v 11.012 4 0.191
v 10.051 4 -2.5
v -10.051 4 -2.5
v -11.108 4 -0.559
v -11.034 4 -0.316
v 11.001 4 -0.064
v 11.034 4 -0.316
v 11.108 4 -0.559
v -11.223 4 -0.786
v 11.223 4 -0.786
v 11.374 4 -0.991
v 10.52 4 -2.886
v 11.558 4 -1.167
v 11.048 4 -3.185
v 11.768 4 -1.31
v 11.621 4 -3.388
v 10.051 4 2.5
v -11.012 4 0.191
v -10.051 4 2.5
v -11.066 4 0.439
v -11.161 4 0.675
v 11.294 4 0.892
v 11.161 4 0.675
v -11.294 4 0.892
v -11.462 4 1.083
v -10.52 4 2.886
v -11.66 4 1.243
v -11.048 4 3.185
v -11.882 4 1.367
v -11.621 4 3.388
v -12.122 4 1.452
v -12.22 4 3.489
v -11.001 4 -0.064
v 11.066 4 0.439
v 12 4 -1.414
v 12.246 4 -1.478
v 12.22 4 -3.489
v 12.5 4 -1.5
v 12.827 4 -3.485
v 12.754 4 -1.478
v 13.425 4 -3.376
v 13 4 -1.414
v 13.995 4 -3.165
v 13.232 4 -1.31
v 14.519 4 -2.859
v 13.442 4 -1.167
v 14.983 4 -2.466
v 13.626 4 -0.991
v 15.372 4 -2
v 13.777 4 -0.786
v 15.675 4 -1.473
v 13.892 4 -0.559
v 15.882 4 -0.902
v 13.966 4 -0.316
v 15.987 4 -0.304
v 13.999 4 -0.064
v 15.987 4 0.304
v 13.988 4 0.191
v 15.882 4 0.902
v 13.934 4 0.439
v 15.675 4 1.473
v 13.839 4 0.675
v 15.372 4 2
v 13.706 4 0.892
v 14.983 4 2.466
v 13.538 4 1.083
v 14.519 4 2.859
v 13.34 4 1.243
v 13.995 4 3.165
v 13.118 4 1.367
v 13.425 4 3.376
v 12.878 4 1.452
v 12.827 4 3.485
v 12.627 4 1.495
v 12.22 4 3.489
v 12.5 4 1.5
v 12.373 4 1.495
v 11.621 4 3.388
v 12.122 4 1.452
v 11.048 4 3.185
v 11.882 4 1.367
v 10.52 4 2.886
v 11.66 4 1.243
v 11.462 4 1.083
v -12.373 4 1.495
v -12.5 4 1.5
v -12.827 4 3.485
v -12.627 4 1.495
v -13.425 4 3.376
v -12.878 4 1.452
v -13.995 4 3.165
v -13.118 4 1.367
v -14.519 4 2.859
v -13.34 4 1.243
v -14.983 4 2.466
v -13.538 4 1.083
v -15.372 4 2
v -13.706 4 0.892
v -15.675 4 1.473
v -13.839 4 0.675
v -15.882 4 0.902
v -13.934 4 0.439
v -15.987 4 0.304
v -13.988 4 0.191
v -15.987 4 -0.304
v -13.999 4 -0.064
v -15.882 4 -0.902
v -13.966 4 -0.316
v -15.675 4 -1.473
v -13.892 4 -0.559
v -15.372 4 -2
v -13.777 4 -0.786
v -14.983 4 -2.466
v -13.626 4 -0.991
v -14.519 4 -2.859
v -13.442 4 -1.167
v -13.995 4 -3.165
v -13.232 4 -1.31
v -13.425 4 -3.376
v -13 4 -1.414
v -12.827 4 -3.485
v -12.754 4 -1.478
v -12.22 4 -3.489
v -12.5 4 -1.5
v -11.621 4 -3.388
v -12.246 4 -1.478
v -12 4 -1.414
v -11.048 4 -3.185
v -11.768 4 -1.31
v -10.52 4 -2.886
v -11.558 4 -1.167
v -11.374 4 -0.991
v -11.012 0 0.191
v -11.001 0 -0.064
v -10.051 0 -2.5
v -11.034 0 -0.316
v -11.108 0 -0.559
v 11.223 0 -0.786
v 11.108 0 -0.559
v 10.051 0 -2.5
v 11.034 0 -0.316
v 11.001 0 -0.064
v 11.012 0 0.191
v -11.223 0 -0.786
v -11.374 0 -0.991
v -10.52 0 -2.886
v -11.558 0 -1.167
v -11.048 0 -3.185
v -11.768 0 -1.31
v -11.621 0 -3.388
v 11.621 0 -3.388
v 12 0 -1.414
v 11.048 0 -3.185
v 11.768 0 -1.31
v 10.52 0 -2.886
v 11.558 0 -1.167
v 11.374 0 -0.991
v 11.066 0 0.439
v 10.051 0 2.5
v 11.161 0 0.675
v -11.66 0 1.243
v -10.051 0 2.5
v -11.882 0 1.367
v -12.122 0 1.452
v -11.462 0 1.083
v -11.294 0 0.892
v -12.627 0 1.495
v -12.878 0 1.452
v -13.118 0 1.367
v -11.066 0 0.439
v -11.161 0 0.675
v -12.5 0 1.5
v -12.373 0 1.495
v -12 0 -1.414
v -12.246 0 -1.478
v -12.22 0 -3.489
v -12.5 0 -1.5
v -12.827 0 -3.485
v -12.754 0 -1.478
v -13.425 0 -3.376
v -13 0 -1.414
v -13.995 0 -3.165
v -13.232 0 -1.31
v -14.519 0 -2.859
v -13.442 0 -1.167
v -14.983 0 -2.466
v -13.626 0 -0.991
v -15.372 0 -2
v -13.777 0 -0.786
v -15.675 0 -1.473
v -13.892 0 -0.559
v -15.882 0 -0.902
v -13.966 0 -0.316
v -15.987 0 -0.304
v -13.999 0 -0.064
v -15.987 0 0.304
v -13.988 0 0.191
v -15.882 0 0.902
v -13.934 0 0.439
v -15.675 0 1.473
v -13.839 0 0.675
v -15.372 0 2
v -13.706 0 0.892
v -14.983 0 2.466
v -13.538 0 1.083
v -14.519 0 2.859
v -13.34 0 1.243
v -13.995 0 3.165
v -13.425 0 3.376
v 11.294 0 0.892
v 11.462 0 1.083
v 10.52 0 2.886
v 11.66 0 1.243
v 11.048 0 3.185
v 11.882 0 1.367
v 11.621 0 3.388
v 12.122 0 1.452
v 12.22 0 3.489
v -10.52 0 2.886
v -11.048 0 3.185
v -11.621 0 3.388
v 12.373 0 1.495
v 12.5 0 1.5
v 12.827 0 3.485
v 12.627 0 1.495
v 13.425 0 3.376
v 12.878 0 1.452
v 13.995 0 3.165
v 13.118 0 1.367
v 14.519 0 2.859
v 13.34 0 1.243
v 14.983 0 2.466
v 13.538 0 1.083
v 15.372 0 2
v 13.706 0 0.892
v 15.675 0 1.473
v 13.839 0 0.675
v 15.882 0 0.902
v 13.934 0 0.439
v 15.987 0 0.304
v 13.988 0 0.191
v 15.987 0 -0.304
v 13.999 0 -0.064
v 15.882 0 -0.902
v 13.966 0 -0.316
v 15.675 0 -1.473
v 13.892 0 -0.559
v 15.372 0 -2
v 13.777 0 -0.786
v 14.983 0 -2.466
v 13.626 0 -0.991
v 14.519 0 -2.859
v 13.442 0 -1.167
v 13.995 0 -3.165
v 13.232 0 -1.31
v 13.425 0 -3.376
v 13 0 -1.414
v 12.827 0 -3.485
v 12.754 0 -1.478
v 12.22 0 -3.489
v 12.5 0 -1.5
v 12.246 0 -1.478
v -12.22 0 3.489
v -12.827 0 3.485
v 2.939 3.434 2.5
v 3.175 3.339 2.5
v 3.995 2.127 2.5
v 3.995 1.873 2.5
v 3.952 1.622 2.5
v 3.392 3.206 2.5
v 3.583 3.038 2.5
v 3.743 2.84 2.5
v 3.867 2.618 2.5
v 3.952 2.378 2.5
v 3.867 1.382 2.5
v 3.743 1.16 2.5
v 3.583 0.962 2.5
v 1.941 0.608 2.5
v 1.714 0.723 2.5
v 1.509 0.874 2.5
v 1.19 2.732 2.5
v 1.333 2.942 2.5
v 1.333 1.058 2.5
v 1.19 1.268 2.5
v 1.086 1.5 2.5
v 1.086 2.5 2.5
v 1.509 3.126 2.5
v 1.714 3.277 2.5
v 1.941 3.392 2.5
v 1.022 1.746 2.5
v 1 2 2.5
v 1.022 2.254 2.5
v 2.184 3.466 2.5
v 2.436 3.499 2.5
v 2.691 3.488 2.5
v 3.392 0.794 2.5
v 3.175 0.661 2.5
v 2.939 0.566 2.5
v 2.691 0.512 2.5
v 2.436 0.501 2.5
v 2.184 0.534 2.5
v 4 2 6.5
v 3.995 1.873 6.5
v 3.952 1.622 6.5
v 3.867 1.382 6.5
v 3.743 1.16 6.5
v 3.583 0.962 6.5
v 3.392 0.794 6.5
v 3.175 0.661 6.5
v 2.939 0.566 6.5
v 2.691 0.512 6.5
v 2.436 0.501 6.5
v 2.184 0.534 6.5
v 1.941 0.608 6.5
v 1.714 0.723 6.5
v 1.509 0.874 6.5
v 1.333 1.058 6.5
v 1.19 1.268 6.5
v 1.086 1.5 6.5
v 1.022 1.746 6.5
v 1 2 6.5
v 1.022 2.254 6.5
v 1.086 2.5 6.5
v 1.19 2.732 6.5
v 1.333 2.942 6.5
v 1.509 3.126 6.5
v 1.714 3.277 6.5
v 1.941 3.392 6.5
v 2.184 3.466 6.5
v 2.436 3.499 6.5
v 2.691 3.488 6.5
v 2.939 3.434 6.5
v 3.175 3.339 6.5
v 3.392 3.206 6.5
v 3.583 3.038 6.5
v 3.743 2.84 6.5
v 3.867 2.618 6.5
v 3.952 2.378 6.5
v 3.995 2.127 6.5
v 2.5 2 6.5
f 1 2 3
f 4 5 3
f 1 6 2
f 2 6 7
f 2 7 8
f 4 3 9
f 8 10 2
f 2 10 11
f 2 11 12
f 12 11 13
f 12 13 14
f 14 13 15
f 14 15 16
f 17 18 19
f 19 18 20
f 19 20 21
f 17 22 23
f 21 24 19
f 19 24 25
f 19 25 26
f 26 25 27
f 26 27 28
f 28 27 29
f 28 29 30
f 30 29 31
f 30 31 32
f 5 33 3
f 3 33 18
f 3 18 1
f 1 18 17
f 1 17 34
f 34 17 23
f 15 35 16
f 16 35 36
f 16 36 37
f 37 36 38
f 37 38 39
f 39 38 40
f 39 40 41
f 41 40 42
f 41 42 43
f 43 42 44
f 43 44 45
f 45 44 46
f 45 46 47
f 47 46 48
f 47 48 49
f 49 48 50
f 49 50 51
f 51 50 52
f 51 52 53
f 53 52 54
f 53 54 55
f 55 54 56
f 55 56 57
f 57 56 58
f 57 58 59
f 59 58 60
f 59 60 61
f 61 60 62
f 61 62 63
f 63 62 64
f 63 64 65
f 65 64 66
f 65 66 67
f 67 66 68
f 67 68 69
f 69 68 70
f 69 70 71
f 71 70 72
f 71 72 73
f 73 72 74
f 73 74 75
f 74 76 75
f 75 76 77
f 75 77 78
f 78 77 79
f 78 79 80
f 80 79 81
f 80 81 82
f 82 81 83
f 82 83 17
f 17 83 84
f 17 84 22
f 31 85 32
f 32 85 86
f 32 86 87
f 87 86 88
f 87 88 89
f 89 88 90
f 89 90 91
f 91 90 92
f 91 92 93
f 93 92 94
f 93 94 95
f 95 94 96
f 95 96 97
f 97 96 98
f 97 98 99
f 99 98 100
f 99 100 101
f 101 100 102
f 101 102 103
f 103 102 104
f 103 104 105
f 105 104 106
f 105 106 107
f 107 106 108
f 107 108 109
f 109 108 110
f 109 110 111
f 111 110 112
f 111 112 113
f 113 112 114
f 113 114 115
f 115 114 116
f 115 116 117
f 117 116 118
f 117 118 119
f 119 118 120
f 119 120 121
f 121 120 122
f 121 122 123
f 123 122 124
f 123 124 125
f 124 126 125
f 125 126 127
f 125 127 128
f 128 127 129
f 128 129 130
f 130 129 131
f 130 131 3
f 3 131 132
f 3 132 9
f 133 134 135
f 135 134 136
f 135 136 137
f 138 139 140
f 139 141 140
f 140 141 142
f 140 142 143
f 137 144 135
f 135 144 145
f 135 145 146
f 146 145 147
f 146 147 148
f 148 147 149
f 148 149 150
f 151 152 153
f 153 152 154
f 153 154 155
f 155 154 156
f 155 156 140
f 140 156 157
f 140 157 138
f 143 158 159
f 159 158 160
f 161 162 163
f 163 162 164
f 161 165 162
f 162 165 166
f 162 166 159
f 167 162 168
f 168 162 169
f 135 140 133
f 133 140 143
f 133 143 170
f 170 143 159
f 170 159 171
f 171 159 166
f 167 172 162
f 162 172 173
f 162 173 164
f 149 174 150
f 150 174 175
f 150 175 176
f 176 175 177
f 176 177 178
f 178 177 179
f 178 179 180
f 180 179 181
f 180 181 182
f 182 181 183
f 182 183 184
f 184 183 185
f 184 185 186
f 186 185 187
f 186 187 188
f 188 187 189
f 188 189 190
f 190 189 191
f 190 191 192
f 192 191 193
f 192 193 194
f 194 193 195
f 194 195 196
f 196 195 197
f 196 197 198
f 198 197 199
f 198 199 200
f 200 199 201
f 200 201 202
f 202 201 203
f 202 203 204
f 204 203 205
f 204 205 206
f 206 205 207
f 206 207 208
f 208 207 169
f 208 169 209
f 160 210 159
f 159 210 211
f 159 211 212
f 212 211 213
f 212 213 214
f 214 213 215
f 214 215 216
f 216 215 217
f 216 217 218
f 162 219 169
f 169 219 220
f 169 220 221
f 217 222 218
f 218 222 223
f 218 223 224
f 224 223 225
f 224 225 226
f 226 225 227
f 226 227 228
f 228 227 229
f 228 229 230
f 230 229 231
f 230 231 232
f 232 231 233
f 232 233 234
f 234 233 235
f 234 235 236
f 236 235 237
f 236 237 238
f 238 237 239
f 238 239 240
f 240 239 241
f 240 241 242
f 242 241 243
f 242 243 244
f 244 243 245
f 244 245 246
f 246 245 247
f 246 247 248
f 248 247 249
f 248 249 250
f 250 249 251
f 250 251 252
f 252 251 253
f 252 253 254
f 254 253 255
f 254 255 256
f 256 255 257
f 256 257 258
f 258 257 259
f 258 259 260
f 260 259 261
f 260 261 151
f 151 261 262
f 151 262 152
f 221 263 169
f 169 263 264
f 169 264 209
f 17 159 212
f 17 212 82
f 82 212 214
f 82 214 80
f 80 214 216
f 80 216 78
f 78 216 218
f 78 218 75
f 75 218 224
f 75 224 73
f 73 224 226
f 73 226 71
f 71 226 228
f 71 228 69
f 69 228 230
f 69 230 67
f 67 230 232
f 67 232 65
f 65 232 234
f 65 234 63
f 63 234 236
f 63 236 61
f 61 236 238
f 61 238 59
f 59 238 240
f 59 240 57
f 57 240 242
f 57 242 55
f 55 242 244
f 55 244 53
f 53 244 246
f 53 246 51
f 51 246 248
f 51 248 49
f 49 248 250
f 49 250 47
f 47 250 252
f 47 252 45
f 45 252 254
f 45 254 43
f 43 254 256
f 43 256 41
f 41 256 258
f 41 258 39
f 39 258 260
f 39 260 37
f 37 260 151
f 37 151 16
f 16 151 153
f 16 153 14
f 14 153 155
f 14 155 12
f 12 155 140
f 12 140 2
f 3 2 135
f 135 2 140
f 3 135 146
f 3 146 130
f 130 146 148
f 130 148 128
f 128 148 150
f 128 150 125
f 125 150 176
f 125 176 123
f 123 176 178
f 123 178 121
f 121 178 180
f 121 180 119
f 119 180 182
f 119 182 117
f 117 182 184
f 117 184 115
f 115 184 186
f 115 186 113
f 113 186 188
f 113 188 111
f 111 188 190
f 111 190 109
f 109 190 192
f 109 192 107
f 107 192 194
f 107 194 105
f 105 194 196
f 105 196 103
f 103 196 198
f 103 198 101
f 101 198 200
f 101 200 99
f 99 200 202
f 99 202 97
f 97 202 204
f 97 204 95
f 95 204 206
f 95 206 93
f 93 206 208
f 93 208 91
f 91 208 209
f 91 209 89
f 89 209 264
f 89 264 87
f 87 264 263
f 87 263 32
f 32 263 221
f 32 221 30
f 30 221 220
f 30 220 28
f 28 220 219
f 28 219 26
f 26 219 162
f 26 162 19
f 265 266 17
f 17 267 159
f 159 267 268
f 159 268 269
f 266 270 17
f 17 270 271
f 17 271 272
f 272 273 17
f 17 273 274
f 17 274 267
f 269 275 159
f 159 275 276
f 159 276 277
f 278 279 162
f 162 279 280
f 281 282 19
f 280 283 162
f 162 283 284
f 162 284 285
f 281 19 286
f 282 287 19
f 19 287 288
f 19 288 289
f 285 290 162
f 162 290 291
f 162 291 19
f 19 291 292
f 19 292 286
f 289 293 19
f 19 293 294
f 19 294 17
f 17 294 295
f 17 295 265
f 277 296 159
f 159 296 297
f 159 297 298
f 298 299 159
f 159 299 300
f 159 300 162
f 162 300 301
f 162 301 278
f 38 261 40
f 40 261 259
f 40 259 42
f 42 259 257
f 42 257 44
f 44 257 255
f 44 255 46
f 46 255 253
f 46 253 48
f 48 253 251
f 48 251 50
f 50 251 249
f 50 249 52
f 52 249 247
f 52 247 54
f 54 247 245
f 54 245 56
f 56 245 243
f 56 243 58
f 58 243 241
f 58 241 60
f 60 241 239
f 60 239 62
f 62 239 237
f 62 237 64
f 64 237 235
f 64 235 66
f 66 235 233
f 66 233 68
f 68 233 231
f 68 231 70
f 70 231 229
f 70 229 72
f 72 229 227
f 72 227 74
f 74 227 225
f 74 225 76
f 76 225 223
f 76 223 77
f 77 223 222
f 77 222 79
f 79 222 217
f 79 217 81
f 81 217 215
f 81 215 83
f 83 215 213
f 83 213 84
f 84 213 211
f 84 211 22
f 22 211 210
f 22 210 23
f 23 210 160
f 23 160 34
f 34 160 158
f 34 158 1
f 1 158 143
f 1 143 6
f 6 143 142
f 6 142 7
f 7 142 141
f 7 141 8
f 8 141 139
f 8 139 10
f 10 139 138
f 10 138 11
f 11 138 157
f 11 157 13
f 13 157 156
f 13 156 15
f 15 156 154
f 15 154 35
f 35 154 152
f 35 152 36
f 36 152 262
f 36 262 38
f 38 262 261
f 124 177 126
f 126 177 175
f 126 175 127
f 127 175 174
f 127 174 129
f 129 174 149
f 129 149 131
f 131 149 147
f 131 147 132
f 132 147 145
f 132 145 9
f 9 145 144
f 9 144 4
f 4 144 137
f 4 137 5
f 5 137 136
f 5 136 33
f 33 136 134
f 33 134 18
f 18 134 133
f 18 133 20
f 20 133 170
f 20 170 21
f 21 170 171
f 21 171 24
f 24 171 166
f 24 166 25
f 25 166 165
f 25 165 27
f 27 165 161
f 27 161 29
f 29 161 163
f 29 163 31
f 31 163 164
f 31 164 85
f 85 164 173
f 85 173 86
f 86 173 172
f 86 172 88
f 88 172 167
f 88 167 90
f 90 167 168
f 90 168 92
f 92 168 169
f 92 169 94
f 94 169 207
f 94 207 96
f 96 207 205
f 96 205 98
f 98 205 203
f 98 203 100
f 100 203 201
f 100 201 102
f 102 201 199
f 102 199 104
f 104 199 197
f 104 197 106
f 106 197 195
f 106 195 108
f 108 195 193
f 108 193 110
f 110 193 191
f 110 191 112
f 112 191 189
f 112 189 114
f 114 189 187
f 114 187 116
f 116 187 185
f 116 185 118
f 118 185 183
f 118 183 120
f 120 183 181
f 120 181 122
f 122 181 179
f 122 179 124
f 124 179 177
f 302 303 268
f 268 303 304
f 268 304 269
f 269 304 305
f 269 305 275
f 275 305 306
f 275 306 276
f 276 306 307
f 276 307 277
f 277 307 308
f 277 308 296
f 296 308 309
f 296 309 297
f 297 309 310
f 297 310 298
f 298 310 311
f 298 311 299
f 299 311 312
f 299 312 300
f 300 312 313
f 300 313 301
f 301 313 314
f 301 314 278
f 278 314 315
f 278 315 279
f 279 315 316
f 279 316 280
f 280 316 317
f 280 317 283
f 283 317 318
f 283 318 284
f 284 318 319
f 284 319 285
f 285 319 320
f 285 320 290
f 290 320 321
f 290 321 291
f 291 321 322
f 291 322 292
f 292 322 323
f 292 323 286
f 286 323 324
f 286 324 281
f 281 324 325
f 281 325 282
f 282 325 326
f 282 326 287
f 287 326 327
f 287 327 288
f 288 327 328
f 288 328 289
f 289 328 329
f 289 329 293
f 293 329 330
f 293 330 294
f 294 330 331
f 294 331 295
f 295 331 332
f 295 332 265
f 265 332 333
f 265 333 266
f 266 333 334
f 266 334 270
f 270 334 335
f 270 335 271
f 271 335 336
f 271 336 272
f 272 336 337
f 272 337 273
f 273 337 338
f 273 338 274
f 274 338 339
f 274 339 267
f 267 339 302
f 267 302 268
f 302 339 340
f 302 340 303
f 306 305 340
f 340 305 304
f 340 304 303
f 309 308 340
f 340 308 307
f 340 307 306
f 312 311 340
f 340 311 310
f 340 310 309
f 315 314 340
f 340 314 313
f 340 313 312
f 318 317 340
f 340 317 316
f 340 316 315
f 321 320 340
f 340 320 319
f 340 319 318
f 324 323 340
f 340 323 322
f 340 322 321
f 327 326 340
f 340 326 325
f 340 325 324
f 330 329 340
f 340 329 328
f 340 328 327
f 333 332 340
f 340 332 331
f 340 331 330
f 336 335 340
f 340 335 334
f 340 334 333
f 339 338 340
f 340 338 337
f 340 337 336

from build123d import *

# Parameters (mm, degrees)
SKETCH_1_R      = 1.5
EXTRUDE_1_DEPTH = 4
SKETCH_2_R      = 1.5
EXTRUDE_2_DEPTH = 4


with BuildPart() as part:
    # Эскиз1 → Бобышка-Вытянуть1 (new body)
    with BuildSketch(Plane(origin=(0, 0, 0), x_dir=(1, 0, 0), z_dir=(0, 1, 0))):
        with BuildLine():
            Line((-10.050510257, -2.5), (10.050510257, -2.5))
            ThreePointArc((10.050510257, -2.5), (16, 0), (10.050510257, 2.5))
            Line((10.050510257, 2.5), (-10.050510257, 2.5))
            ThreePointArc((-10.050510257, 2.5), (-16, 0), (-10.050510257, -2.5))
        make_face()
        with Locations(Location((-12.5, 0, 0), (0, 0, 270))):
            Circle(SKETCH_1_R, mode=Mode.SUBTRACT)
        with Locations(Location((12.5, 0, 0), (0, 0, 270))):
            Circle(SKETCH_1_R, mode=Mode.SUBTRACT)
    extrude(amount=EXTRUDE_1_DEPTH)

    # Эскиз2 → Бобышка-Вытянуть2 (add)
    with BuildSketch(Plane.XY.offset(2.5)):
        with Locations(Location((2.5, 2, 0), (0, 0, 180))):
            Circle(SKETCH_2_R)
    extrude(amount=EXTRUDE_2_DEPTH)


solid = part.part
